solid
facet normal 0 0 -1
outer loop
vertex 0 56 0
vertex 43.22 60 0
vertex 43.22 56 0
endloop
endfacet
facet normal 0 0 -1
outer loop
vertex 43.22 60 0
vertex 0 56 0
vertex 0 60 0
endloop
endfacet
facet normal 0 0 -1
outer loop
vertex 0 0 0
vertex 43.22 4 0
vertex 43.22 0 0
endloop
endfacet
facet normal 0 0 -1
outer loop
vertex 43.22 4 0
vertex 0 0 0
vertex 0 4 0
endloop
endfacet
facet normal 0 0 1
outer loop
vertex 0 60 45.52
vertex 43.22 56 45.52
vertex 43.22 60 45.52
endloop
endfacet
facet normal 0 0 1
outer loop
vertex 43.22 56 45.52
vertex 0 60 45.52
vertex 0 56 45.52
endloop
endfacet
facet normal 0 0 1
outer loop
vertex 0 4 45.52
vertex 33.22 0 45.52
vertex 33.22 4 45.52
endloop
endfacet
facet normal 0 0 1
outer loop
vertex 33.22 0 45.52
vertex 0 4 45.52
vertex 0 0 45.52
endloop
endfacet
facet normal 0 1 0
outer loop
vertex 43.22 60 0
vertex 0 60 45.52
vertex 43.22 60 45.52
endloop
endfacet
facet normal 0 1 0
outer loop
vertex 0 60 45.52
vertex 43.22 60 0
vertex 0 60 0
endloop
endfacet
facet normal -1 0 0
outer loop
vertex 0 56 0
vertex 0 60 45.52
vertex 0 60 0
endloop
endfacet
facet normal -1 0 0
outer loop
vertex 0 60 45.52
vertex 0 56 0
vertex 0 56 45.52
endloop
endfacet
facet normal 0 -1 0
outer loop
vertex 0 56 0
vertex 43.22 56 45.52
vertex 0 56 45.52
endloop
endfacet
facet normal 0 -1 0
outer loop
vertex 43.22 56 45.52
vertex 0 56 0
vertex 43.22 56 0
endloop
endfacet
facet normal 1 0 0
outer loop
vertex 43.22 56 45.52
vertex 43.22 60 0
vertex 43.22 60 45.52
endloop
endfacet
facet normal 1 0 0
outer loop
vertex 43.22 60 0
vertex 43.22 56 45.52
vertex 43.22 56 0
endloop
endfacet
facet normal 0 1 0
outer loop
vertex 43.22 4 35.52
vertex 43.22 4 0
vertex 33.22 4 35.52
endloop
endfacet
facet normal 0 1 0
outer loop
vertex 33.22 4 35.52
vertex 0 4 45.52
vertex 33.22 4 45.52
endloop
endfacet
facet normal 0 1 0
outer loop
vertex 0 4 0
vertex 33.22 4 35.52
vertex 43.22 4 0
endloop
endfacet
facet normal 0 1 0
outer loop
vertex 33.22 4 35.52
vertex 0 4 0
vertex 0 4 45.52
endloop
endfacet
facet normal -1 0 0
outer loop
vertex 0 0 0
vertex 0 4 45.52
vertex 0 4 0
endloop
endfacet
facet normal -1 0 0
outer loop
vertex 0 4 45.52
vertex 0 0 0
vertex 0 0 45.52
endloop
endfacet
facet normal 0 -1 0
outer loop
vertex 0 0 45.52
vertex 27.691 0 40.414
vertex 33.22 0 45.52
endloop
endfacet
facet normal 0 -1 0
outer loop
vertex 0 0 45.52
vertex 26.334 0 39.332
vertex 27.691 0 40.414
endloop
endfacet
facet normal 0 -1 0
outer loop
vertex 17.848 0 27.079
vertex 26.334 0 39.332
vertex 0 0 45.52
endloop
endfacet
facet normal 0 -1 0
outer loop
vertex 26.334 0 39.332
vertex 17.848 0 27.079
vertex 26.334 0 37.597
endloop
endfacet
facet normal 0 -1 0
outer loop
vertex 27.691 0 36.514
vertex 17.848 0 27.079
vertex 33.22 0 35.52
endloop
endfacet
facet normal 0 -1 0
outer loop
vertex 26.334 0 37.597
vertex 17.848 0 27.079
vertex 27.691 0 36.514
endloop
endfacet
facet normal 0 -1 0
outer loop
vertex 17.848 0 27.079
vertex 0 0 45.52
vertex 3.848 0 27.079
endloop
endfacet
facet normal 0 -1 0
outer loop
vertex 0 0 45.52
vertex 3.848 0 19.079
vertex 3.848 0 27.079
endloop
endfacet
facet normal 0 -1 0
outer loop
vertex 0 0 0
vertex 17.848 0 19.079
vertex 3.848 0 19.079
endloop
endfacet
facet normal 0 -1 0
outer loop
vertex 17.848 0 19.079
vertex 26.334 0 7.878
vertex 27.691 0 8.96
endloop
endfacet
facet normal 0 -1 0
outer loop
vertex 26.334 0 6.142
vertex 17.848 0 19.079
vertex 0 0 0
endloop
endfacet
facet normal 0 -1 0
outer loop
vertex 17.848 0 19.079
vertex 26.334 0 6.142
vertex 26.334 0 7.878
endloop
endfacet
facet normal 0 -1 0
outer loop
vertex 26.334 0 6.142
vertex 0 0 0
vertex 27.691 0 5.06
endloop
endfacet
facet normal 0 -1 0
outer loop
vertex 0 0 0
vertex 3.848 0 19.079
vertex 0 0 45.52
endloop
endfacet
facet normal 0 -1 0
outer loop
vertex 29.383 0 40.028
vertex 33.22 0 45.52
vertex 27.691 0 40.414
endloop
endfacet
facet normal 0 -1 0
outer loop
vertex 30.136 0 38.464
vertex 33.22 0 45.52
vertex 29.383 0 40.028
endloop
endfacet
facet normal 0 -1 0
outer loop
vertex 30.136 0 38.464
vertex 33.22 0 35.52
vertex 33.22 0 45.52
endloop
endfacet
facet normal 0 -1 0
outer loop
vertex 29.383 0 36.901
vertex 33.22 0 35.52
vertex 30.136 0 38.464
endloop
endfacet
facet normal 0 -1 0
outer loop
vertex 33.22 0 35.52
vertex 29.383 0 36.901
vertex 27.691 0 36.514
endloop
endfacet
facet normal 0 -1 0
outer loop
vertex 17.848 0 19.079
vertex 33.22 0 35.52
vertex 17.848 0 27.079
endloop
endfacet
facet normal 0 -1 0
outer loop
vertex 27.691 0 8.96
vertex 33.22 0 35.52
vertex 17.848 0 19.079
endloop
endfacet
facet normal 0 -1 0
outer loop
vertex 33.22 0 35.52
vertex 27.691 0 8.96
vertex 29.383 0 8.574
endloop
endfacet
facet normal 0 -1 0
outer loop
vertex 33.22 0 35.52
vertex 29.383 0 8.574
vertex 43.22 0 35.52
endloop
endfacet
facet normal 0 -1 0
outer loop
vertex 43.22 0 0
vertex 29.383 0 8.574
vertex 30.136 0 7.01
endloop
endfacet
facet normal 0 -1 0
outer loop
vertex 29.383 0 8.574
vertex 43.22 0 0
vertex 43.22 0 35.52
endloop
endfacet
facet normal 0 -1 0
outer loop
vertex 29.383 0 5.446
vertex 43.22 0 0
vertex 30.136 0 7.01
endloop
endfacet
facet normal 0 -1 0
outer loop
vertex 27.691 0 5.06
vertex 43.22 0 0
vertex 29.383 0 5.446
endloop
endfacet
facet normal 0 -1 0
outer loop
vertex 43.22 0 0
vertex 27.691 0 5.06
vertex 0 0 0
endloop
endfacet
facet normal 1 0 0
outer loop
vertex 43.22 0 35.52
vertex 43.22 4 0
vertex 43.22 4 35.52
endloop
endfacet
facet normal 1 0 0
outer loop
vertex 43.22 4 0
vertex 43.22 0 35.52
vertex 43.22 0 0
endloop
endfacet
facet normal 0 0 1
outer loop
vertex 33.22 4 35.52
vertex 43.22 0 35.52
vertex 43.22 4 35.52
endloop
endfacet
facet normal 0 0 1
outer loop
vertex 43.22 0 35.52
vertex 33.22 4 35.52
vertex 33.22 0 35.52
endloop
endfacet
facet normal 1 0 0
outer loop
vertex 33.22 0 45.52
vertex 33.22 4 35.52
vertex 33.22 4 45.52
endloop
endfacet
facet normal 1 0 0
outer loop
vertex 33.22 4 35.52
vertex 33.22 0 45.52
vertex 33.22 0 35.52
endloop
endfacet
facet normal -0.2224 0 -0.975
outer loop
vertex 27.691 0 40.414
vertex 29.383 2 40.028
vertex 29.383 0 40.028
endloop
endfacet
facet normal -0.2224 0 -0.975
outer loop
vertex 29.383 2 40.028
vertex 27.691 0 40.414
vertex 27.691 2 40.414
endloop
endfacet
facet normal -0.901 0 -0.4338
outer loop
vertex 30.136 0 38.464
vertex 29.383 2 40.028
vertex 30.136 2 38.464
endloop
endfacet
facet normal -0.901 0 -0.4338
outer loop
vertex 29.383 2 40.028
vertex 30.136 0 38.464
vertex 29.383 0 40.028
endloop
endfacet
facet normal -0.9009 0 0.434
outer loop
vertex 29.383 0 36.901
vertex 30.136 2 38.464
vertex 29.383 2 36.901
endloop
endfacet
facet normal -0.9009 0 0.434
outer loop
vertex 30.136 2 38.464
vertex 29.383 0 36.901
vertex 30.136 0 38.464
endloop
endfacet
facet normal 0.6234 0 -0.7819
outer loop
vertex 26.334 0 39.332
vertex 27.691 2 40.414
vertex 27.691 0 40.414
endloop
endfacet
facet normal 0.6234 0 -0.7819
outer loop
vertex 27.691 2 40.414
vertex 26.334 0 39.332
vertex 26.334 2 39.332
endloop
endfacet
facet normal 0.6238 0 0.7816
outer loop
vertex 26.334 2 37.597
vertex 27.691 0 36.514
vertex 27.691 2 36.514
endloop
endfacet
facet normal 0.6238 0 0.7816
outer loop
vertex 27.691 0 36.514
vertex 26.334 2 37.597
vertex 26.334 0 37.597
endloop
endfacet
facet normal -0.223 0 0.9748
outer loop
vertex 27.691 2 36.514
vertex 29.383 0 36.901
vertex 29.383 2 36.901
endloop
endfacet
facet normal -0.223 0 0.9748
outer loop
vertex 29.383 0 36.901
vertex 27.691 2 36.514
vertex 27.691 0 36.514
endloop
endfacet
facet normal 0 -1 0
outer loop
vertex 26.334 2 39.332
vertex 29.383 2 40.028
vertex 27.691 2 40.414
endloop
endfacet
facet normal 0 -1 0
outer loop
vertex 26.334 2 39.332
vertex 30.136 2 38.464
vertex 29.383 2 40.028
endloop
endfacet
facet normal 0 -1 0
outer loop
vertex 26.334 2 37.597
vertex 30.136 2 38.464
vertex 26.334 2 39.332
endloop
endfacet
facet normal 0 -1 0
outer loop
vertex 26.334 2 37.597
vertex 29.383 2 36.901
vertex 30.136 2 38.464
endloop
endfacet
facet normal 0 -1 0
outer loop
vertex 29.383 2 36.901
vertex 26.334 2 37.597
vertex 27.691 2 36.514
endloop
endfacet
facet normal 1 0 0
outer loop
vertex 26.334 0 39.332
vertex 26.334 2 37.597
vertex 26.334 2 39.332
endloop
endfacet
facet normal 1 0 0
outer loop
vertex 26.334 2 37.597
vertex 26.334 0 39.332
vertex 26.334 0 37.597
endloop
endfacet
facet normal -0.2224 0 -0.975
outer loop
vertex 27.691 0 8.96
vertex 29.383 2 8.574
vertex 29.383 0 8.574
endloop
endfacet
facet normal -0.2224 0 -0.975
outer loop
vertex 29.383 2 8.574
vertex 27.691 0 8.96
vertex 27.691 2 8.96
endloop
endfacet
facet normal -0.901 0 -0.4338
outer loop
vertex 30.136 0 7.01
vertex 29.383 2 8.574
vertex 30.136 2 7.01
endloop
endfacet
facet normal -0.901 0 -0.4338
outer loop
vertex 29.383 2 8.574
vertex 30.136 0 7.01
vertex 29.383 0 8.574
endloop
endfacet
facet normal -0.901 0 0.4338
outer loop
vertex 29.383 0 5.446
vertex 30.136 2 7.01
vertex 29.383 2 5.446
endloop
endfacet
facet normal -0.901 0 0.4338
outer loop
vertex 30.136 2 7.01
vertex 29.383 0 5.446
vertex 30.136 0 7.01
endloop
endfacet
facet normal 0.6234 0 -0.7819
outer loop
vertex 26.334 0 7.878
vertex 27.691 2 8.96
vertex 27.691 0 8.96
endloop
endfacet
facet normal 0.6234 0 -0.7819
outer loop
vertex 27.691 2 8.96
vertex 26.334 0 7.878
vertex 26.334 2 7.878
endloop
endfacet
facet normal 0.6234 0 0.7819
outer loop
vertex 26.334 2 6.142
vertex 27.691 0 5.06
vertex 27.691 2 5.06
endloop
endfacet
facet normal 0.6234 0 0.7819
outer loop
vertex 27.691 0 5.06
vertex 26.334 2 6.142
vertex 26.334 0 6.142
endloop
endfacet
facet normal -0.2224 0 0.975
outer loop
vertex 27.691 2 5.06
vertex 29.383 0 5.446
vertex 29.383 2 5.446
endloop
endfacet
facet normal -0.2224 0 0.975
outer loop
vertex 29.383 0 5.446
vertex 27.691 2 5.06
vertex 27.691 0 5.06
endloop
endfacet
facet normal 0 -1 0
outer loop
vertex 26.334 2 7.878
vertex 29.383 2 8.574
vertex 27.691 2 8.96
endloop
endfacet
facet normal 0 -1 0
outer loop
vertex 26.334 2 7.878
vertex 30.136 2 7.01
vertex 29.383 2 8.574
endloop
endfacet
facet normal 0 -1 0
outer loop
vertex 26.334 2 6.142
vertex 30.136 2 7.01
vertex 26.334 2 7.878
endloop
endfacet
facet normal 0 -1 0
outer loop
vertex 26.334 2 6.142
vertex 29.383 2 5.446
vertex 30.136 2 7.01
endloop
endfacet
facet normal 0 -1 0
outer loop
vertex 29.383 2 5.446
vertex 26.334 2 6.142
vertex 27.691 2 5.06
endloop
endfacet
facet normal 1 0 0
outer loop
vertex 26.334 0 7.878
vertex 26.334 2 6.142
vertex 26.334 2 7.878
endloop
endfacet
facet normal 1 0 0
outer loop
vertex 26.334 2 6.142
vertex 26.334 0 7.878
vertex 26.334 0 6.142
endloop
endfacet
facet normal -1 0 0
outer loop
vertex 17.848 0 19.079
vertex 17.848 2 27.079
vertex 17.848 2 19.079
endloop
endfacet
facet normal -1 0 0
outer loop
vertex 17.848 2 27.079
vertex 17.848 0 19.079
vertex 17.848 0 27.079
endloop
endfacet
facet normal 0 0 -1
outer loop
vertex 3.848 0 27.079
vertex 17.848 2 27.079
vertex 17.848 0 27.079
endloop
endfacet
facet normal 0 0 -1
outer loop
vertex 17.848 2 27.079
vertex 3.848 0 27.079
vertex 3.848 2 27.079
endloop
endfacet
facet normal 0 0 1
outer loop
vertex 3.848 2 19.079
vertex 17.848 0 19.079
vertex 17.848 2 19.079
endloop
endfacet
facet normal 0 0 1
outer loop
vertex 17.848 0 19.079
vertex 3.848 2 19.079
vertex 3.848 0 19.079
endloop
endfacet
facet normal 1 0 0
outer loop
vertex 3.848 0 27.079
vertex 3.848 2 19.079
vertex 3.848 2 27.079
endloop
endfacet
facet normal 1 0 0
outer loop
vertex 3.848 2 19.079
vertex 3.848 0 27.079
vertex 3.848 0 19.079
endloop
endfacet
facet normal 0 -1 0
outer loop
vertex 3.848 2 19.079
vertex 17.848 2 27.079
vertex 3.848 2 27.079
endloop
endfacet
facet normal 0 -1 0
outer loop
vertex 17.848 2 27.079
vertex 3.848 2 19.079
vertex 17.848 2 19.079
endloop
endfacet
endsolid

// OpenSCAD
/* doodle-meta {"version":1,"parameters":{"width":{"label":"Overall width","description":"Changes the body width","unit":"mm","feature":"body_width"},"depth":{"label":"Overall depth","description":"Changes the body depth","unit":"mm","feature":"body_depth"},"height":{"label":"Overall height","description":"Changes the body height","unit":"mm","feature":"body_height"},"wall_thickness":{"label":"Wall thickness","description":"Changes the thickness of the vertical walls","unit":"mm","feature":"wall_thickness"},"base_thickness":{"label":"Base thickness","description":"Changes the thickness of the base flange","unit":"mm","feature":"base_thickness"},"hole_diameter":{"label":"Mounting hole diameter","description":"Changes the diameter of the mounting holes","unit":"mm","feature":"mounting_holes"},"slot_width":{"label":"Slot width","description":"Changes the width of the central slot","unit":"mm","feature":"central_slot"},"slot_length":{"label":"Slot length","description":"Changes the length of the central slot","unit":"mm","feature":"central_slot"}},"features":{"body_width":{"kind":"dimension","axis":"x","label":"Overall width"},"body_depth":{"kind":"dimension","axis":"y","label":"Overall depth"},"body_height":{"kind":"dimension","axis":"z","label":"Overall height"},"wall_thickness":{"kind":"dimension","axis":"y","label":"Wall thickness"},"base_thickness":{"kind":"dimension","axis":"z","label":"Base thickness"},"mounting_holes":{"kind":"region","label":"Mounting holes","min":[{"parameter":"width","scale":0.15,"offset":0},{"parameter":"depth","scale":0.1,"offset":0},0],"max":[{"parameter":"width","scale":0.85,"offset":0},{"parameter":"depth","scale":0.9,"offset":0},{"parameter":"height","scale":1.0,"offset":0}]},"central_slot":{"kind":"region","label":"Central slot","min":[{"parameter":"width","scale":0.4,"offset":0},{"parameter":"depth","scale":0.4,"offset":0},0],"max":[{"parameter":"width","scale":0.6,"offset":0},{"parameter":"depth","scale":0.6,"offset":0},{"parameter":"height","scale":1.0,"offset":0}]}}} */

// Top-level size parameters (authoritative measured spans)
width = 43.22;
depth = 60.0;
height = 45.52;
wall_thickness = 4.0;
base_thickness = 4.0;
hole_diameter = 4.0;
slot_width = 8.0;
slot_length = 14.0;

// Derived (not user-editable)
eps = 0.5;
chamfer_size = 10.0;
hole_x_pos = width * 0.651;
hole_top_z = height * (1 - 0.155);
hole_bot_z = height * (1 - 0.846);
slot_x_pos = width * 0.251;
slot_z_pos = height * (1 - 0.493);

// U-channel cross-section in XY plane (two vertical walls + base)
module u_channel() {
    linear_extrude(height = height) {
        union() {
            // Base flange
            square([width, base_thickness]);
            // Front wall (near Y=0)
            square([width, wall_thickness]);
            // Back wall (near Y=depth)
            translate([0, depth - wall_thickness]) {
                square([width, wall_thickness]);
            }
        }
    }
}

// Chamfer cutter for top-right corner of the front wall (front-view silhouette)
module chamfer_cutter() {
    translate([width - chamfer_size, -eps, height - chamfer_size]) {
        cube([chamfer_size + eps, wall_thickness + 2 * eps, chamfer_size + eps]);
    }
}

// Circular mounting hole through the front wall (axis along Y)
module hole_cutter(zpos) {
    translate([hole_x_pos, -eps, zpos]) {
        rotate([90, 0, 0]) {
            cylinder(h = wall_thickness + 2 * eps, d = hole_diameter, center = true);
        }
    }
}

// Central rectangular slot through the front wall (axis along Y)
module slot_cutter() {
    translate([slot_x_pos, -eps, slot_z_pos]) {
        cube([slot_length, wall_thickness + 2 * eps, slot_width], center = true);
    }
}

// Main design
difference() {
    u_channel();
    chamfer_cutter();
    hole_cutter(hole_top_z);
    hole_cutter(hole_bot_z);
    slot_cutter();
}
